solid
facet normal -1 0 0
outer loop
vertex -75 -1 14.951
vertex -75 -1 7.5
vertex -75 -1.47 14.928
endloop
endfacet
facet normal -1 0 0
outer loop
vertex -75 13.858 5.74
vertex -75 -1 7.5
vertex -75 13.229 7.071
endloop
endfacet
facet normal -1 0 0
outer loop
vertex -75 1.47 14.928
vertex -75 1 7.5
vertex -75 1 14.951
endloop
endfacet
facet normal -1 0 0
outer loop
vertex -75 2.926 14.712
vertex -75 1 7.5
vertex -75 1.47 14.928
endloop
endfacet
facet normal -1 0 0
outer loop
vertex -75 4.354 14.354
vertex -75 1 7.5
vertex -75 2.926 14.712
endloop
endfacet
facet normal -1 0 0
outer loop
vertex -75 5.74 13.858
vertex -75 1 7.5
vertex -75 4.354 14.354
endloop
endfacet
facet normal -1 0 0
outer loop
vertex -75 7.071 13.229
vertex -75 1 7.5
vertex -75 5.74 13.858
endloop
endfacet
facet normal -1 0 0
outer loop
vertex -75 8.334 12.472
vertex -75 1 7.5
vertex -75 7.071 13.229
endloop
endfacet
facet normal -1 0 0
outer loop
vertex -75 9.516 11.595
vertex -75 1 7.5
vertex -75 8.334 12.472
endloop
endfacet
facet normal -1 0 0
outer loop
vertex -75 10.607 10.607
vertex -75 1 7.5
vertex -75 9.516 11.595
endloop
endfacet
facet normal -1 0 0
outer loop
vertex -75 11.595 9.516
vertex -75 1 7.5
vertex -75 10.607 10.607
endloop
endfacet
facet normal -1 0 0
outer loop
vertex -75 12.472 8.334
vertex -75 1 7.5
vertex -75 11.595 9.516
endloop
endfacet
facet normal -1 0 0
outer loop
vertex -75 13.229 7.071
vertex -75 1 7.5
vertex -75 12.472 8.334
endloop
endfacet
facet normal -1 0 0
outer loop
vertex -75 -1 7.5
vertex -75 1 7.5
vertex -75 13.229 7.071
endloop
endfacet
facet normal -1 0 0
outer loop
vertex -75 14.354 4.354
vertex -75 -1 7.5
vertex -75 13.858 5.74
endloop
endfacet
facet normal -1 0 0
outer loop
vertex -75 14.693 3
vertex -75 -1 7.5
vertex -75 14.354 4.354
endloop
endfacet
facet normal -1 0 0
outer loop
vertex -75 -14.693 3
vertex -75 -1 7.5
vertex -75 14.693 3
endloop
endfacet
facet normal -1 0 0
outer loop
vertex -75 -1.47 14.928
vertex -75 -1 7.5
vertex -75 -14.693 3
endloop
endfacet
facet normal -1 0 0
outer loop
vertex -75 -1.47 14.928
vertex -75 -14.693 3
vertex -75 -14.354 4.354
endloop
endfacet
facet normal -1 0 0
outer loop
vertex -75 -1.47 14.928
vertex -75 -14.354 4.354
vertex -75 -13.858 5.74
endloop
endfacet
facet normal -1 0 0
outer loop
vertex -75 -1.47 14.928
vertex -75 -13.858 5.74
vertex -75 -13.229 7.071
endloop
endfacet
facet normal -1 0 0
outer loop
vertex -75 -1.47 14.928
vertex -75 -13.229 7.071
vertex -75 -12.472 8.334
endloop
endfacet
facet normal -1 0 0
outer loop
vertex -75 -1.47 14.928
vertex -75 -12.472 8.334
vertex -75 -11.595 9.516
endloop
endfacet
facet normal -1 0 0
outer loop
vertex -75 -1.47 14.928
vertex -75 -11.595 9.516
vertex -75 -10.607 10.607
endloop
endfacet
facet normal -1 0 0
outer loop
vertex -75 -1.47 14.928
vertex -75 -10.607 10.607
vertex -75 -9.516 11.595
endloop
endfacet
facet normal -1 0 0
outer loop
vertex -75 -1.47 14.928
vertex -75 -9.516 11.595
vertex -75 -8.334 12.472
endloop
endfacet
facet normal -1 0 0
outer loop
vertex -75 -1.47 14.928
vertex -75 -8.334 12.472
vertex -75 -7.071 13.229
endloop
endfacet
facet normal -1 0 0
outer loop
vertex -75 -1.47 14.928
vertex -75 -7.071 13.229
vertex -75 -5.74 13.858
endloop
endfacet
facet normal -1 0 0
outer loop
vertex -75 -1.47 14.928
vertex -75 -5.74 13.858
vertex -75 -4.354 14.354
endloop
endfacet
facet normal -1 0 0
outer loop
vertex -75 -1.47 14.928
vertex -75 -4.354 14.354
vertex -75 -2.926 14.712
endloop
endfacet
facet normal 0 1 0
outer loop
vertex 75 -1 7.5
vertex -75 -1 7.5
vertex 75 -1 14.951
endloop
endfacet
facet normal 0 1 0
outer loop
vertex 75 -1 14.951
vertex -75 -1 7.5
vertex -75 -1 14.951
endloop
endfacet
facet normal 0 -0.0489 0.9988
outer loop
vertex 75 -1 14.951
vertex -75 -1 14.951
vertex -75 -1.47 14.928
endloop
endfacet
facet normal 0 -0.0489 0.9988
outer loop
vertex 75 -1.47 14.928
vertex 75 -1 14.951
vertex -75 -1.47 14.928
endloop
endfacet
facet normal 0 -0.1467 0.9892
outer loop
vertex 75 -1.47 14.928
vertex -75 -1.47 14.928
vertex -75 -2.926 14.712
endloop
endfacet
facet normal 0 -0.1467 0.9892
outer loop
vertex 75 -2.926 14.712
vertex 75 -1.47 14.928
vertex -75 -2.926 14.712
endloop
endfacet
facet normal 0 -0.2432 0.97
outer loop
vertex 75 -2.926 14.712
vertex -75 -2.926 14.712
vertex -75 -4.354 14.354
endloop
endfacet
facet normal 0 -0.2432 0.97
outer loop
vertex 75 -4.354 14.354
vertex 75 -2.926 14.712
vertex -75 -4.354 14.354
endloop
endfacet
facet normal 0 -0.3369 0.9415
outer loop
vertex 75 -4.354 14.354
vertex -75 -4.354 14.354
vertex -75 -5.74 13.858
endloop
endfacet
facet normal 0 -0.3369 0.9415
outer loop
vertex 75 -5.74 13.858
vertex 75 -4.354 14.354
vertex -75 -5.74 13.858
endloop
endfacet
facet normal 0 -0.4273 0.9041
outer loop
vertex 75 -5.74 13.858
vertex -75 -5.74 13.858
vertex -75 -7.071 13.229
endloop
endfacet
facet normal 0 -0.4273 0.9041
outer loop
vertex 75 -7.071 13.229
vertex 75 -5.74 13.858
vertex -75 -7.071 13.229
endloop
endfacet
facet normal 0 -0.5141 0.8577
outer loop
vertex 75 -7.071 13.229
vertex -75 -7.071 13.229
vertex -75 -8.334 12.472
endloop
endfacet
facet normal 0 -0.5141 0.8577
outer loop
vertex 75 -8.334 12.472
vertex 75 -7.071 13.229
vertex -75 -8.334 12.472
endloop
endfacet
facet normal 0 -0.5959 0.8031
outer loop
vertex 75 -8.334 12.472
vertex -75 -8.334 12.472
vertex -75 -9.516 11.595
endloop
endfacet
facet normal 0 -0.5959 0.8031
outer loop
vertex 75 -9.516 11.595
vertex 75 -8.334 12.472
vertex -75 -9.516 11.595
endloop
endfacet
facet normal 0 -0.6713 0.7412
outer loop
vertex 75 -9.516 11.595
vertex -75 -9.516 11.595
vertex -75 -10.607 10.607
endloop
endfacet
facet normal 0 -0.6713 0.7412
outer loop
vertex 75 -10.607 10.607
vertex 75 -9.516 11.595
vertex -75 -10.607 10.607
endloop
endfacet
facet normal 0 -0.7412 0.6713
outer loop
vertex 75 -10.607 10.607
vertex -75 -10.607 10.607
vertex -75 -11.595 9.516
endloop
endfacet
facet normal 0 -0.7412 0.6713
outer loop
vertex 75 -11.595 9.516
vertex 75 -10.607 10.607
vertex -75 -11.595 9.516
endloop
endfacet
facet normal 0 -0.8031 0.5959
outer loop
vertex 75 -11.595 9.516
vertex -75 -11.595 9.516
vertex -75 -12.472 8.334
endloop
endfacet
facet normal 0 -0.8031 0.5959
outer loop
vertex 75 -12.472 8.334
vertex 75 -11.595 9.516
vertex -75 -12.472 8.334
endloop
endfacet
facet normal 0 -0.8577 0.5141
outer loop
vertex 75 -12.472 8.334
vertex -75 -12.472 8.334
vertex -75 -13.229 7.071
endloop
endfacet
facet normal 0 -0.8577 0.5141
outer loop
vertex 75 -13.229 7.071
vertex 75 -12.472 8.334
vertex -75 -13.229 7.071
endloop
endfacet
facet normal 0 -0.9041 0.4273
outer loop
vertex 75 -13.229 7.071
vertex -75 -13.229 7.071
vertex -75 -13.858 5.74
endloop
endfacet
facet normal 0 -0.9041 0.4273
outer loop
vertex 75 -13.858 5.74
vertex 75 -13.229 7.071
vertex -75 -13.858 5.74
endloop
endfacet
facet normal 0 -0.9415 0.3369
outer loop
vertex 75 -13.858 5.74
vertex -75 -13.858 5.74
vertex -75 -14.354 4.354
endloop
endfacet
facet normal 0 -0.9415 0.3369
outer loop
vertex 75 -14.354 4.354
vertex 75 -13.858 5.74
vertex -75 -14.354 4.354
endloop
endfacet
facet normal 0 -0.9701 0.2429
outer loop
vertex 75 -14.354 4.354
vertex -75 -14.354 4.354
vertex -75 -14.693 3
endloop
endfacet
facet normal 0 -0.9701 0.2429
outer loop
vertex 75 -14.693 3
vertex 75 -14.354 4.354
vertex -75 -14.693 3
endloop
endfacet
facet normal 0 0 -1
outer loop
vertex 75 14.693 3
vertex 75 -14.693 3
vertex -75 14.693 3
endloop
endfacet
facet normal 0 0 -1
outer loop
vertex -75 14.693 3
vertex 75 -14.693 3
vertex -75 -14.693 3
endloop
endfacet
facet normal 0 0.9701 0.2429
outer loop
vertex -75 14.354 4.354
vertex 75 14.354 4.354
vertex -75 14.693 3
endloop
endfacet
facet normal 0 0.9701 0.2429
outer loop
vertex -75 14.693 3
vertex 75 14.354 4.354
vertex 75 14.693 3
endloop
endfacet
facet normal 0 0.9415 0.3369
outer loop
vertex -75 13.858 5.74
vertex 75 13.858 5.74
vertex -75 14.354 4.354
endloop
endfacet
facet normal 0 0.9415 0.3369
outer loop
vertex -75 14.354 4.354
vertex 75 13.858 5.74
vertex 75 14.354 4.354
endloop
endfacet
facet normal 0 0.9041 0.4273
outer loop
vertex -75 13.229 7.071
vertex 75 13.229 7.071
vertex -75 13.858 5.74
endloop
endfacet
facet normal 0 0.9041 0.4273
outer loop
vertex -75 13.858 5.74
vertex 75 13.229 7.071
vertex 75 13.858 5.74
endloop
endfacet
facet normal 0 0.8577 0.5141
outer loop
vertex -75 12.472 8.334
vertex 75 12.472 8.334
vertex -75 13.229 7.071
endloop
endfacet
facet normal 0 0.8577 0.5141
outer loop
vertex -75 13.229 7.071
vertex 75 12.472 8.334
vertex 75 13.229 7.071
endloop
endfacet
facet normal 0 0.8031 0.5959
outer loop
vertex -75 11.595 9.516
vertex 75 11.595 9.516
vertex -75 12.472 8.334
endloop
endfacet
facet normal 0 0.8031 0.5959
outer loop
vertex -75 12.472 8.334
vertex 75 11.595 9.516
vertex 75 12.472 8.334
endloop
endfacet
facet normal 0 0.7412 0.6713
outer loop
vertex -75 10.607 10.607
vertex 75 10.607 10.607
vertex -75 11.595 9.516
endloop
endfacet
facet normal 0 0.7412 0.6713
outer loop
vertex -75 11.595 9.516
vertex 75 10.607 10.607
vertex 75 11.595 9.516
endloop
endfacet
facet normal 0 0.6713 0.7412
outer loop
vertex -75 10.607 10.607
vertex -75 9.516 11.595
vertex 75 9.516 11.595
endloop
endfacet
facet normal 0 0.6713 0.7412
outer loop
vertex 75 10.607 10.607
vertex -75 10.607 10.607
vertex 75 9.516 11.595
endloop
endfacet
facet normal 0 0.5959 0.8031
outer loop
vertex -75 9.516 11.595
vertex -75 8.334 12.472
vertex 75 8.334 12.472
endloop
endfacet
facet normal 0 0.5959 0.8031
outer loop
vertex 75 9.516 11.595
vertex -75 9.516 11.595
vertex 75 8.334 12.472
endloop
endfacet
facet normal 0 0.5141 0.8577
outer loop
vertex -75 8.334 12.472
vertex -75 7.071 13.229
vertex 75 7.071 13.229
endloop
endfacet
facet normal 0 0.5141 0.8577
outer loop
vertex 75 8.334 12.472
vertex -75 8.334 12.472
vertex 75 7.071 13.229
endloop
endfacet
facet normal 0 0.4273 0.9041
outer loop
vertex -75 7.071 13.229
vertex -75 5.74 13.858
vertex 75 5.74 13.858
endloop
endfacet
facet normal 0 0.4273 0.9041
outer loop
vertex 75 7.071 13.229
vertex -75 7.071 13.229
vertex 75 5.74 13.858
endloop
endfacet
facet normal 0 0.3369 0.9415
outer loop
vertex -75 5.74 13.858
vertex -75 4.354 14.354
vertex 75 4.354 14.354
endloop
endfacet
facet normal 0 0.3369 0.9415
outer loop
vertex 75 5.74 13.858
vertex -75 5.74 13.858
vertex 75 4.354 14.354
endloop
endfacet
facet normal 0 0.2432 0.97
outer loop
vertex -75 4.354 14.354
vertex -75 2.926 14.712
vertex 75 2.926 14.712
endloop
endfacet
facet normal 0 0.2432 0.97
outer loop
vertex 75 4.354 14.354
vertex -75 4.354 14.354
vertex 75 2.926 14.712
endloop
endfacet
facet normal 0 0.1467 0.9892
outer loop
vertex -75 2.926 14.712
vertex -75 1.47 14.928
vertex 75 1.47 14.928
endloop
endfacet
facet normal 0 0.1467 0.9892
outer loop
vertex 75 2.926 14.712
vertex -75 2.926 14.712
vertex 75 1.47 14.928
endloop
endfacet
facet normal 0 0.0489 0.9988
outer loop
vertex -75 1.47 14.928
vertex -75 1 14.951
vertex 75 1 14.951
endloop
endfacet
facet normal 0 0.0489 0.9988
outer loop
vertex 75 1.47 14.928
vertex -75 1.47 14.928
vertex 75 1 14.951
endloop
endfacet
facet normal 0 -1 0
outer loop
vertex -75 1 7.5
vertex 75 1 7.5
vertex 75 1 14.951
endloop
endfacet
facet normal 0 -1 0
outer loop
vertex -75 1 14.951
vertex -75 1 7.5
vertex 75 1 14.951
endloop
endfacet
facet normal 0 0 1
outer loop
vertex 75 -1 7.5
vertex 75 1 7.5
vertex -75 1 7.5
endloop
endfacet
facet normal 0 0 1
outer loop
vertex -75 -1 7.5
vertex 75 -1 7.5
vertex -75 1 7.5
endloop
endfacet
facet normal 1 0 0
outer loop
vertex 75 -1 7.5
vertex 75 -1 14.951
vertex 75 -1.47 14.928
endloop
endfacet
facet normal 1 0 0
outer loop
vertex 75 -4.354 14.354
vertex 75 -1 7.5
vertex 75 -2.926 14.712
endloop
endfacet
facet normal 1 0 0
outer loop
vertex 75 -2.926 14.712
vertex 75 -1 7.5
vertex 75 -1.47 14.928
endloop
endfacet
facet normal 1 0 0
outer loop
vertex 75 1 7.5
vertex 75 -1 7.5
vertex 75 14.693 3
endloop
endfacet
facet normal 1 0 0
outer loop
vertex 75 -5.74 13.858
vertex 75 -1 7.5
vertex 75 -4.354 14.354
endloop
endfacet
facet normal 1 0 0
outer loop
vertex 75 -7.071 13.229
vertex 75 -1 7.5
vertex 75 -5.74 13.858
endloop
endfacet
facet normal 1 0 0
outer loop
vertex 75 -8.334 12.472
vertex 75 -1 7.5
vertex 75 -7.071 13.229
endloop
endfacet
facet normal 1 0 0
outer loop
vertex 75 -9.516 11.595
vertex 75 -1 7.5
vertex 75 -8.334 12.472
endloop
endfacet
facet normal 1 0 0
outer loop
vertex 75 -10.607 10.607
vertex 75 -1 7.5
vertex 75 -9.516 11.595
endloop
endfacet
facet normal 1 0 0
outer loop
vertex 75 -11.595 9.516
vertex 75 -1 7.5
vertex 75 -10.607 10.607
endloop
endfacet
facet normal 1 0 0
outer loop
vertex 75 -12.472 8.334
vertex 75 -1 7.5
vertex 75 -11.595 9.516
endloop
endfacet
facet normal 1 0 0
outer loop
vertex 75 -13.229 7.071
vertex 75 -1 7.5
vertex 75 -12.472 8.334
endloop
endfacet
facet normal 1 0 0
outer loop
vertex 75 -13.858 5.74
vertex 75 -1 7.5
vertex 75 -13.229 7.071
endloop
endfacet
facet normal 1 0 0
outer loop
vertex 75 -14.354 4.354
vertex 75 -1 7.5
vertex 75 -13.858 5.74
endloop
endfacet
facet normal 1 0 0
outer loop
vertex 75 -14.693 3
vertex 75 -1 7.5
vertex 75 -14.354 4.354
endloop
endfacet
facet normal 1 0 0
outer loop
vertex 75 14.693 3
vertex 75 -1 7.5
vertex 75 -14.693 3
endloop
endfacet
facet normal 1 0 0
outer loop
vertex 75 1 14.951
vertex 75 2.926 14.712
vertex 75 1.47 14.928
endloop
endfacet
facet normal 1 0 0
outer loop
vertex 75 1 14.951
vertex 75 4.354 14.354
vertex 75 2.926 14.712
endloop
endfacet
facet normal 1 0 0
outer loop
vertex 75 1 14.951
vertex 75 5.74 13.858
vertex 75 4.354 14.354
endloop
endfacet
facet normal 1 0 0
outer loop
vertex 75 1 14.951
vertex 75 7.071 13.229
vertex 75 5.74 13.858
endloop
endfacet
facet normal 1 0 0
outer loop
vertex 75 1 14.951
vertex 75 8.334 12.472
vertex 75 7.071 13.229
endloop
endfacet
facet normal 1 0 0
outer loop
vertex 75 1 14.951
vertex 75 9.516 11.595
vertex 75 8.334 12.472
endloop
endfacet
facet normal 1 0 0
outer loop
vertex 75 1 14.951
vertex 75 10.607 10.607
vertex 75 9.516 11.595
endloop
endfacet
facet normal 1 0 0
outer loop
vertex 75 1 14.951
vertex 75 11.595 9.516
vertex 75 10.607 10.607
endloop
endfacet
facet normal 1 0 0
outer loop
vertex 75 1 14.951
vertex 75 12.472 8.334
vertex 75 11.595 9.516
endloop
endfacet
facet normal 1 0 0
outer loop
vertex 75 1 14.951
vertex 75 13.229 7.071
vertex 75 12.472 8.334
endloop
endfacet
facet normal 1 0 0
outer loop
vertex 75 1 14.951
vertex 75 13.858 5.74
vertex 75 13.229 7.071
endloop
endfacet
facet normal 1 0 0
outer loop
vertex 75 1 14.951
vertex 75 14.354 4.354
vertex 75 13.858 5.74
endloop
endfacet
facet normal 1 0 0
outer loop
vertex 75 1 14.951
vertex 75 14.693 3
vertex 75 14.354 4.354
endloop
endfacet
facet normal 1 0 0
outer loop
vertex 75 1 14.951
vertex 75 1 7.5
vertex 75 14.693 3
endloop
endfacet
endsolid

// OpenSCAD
module RoundedCardHolder(length = 150, cardThickness = 2, slotDepth = 25, fn=64)
{
    difference()
    {
        // Main curved shape
        rotate([0, 90, 0])
        cylinder(h = length, r = 15, center = true, $fn=fn);

        // Remove bottom of cylinder so it sits flat on table
        translate([0, 0, -7])
        cube([length + 2, 40, 20], center = true);

        // Card slot
        color("red")
        translate([0, 0, 20])
        cube([length + 2, cardThickness, slotDepth], center = true);
    }
}

RoundedCardHolder();
